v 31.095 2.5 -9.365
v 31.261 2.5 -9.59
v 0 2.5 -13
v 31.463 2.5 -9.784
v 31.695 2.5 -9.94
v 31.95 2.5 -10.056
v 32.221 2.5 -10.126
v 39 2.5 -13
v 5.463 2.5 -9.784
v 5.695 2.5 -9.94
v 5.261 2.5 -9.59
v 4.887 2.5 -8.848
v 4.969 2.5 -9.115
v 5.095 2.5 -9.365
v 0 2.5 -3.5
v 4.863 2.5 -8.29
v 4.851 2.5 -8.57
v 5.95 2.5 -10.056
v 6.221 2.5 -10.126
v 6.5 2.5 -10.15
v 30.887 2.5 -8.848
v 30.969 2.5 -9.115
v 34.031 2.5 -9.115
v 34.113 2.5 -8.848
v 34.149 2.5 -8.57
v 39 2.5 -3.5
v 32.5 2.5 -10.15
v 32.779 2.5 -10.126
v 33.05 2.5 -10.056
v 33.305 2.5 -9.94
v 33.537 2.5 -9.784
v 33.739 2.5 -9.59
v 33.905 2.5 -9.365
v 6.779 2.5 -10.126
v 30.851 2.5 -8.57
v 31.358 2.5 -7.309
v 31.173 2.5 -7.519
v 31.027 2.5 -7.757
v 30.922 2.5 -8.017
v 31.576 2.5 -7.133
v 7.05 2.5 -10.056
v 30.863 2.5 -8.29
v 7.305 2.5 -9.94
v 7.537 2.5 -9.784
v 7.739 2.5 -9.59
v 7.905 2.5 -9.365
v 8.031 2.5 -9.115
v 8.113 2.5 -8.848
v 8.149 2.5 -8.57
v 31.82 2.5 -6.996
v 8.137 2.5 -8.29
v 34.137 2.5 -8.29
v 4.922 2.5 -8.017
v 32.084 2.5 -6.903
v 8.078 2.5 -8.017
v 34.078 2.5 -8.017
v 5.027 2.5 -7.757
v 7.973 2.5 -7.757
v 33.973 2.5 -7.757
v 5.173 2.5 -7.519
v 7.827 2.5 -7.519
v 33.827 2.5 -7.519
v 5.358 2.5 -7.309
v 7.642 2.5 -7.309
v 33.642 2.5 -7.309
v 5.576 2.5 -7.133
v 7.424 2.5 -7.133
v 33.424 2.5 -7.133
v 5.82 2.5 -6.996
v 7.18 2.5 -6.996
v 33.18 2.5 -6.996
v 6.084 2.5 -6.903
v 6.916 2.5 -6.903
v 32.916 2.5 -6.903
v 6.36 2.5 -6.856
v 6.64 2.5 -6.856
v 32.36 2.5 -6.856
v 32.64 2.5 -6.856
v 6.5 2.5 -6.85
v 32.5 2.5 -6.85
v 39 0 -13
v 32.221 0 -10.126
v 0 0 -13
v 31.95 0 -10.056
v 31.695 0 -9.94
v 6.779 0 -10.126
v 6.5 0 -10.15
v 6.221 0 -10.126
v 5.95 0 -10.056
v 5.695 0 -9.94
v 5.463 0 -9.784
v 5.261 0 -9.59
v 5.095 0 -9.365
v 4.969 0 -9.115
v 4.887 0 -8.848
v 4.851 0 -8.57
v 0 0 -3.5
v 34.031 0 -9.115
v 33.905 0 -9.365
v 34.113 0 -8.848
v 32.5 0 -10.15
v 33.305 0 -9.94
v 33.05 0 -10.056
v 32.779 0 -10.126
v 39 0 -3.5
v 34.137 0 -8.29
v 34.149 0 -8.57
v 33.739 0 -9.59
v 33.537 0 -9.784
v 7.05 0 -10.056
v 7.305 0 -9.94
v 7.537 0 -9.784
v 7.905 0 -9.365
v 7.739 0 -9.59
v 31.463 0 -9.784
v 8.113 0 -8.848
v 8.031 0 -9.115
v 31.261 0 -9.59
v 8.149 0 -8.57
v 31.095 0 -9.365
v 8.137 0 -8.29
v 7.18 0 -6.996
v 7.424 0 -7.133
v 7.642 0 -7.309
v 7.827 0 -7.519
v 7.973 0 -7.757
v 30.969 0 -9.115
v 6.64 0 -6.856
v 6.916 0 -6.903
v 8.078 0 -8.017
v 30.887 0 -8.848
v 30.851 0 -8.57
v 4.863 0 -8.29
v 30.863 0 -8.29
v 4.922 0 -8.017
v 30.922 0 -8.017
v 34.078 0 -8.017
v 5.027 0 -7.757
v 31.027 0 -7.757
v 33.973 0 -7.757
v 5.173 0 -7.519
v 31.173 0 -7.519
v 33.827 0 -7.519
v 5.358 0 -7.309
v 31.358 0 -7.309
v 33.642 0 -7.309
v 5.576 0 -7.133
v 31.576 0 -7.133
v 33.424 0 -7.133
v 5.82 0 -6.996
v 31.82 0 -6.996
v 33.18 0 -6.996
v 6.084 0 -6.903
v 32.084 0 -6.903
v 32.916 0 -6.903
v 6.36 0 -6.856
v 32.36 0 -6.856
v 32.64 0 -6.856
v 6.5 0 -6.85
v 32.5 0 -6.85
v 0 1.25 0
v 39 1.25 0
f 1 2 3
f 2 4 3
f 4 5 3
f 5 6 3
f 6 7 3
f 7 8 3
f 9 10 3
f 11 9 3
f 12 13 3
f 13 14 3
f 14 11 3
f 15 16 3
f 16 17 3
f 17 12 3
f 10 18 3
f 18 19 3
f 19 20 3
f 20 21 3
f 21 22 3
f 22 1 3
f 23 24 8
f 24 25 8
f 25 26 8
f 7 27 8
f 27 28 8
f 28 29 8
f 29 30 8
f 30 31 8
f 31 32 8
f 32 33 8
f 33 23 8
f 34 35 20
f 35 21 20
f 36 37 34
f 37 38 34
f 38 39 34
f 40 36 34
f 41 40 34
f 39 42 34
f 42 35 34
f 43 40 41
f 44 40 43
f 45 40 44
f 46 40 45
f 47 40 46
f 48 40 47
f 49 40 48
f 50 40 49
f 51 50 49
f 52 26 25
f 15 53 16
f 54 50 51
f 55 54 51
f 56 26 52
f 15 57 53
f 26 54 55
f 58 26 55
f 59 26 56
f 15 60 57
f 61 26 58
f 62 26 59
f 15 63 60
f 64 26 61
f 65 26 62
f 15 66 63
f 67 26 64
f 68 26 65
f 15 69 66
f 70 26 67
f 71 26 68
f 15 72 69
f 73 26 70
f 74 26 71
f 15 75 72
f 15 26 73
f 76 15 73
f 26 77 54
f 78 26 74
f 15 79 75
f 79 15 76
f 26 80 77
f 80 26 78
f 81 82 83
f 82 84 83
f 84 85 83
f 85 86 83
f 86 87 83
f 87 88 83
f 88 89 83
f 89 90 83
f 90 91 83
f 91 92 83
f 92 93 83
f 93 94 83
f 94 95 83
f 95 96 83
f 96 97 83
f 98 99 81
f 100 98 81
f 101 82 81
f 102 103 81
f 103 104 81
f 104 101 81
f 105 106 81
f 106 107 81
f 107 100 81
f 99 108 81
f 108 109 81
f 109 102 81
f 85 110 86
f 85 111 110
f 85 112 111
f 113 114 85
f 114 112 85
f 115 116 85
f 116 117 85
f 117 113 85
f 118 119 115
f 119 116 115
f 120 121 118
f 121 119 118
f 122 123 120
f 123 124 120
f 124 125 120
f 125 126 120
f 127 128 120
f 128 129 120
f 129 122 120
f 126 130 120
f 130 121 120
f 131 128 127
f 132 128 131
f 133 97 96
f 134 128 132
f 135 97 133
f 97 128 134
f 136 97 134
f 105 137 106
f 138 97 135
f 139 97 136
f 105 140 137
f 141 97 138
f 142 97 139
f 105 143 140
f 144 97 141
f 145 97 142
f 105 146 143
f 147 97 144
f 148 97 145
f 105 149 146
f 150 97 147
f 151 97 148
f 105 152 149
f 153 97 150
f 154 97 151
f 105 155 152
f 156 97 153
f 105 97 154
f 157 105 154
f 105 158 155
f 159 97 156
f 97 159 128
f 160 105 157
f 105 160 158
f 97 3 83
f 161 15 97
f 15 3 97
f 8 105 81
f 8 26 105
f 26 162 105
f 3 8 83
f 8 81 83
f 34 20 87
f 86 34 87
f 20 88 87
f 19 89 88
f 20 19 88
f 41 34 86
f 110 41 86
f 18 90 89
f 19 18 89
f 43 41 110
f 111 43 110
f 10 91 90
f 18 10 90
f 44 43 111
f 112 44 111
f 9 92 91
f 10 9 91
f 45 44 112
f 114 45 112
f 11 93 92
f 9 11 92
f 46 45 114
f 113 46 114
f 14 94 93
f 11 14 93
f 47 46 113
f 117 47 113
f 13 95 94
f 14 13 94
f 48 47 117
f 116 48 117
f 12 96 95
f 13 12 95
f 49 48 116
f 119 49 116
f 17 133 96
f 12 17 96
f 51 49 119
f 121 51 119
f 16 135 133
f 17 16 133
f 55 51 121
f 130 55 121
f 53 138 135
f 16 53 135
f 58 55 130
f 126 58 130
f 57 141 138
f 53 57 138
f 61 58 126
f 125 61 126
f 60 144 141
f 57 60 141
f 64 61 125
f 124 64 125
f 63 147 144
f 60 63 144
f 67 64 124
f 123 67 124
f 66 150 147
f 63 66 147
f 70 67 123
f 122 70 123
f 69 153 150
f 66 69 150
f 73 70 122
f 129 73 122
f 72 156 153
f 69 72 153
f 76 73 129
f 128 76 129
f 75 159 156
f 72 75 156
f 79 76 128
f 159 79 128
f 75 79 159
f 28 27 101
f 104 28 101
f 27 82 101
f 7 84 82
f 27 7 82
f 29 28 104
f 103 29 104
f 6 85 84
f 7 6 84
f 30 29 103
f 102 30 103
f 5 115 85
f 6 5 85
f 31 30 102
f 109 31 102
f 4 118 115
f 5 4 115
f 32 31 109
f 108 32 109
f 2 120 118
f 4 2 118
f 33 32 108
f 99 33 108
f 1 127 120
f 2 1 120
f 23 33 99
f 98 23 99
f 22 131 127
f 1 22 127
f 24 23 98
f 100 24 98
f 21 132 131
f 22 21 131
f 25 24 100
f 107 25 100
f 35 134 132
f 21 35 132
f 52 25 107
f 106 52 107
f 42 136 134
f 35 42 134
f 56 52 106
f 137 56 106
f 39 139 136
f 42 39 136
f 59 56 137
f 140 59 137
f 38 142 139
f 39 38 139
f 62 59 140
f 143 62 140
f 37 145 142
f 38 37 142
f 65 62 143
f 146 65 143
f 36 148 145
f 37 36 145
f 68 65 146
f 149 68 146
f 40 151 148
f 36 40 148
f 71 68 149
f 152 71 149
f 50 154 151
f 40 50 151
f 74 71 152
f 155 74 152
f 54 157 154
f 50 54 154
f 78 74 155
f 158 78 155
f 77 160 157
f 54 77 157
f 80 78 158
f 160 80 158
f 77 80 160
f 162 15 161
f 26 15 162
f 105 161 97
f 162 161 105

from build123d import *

# Parameters (mm, degrees)
SKETCH_1_W          = 39
SKETCH_1_H          = 13
SKETCH_1_R          = 1.65
EXTRUDE_1_DEPTH     = 2.5
CUT_EXTRUDE_1_DEPTH = 42
CUT_EXTRUDE_2_DEPTH = 42


with BuildPart() as part:
    # 草图1 → 凸台-拉伸1 (new body)
    with BuildSketch(Plane(origin=(0, 0, 0), x_dir=(1, 0, 0), z_dir=(0, 1, 0))):
        with Locations((19.5, 6.5)):
            Rectangle(SKETCH_1_W, SKETCH_1_H)
        with Locations(Location((6.5, 8.5, 0), (0, 0, 270))):
            Circle(SKETCH_1_R, mode=Mode.SUBTRACT)
        with Locations(Location((32.5, 8.5, 0), (0, 0, 270))):
            Circle(SKETCH_1_R, mode=Mode.SUBTRACT)
    extrude(amount=EXTRUDE_1_DEPTH)

    # 草图2 → 切除-拉伸1 (cut)
    with BuildSketch(Plane(origin=(39, 0, 0), x_dir=(0, 0, -1), z_dir=(1, 0, 0))):
        Polygon((3.5, 2.5), (0, 2.5), (0, 1.25), align=None)
    extrude(amount=-CUT_EXTRUDE_1_DEPTH, mode=Mode.SUBTRACT)

    # 草图3 → 切除-拉伸2 (cut)
    with BuildSketch(Plane(origin=(39, 0, 0), x_dir=(0, 0, -1), z_dir=(1, 0, 0))):
        Polygon((0, 1.25), (0, 0), (3.5, 0), align=None)
    extrude(amount=-CUT_EXTRUDE_2_DEPTH, mode=Mode.SUBTRACT)


solid = part.part
